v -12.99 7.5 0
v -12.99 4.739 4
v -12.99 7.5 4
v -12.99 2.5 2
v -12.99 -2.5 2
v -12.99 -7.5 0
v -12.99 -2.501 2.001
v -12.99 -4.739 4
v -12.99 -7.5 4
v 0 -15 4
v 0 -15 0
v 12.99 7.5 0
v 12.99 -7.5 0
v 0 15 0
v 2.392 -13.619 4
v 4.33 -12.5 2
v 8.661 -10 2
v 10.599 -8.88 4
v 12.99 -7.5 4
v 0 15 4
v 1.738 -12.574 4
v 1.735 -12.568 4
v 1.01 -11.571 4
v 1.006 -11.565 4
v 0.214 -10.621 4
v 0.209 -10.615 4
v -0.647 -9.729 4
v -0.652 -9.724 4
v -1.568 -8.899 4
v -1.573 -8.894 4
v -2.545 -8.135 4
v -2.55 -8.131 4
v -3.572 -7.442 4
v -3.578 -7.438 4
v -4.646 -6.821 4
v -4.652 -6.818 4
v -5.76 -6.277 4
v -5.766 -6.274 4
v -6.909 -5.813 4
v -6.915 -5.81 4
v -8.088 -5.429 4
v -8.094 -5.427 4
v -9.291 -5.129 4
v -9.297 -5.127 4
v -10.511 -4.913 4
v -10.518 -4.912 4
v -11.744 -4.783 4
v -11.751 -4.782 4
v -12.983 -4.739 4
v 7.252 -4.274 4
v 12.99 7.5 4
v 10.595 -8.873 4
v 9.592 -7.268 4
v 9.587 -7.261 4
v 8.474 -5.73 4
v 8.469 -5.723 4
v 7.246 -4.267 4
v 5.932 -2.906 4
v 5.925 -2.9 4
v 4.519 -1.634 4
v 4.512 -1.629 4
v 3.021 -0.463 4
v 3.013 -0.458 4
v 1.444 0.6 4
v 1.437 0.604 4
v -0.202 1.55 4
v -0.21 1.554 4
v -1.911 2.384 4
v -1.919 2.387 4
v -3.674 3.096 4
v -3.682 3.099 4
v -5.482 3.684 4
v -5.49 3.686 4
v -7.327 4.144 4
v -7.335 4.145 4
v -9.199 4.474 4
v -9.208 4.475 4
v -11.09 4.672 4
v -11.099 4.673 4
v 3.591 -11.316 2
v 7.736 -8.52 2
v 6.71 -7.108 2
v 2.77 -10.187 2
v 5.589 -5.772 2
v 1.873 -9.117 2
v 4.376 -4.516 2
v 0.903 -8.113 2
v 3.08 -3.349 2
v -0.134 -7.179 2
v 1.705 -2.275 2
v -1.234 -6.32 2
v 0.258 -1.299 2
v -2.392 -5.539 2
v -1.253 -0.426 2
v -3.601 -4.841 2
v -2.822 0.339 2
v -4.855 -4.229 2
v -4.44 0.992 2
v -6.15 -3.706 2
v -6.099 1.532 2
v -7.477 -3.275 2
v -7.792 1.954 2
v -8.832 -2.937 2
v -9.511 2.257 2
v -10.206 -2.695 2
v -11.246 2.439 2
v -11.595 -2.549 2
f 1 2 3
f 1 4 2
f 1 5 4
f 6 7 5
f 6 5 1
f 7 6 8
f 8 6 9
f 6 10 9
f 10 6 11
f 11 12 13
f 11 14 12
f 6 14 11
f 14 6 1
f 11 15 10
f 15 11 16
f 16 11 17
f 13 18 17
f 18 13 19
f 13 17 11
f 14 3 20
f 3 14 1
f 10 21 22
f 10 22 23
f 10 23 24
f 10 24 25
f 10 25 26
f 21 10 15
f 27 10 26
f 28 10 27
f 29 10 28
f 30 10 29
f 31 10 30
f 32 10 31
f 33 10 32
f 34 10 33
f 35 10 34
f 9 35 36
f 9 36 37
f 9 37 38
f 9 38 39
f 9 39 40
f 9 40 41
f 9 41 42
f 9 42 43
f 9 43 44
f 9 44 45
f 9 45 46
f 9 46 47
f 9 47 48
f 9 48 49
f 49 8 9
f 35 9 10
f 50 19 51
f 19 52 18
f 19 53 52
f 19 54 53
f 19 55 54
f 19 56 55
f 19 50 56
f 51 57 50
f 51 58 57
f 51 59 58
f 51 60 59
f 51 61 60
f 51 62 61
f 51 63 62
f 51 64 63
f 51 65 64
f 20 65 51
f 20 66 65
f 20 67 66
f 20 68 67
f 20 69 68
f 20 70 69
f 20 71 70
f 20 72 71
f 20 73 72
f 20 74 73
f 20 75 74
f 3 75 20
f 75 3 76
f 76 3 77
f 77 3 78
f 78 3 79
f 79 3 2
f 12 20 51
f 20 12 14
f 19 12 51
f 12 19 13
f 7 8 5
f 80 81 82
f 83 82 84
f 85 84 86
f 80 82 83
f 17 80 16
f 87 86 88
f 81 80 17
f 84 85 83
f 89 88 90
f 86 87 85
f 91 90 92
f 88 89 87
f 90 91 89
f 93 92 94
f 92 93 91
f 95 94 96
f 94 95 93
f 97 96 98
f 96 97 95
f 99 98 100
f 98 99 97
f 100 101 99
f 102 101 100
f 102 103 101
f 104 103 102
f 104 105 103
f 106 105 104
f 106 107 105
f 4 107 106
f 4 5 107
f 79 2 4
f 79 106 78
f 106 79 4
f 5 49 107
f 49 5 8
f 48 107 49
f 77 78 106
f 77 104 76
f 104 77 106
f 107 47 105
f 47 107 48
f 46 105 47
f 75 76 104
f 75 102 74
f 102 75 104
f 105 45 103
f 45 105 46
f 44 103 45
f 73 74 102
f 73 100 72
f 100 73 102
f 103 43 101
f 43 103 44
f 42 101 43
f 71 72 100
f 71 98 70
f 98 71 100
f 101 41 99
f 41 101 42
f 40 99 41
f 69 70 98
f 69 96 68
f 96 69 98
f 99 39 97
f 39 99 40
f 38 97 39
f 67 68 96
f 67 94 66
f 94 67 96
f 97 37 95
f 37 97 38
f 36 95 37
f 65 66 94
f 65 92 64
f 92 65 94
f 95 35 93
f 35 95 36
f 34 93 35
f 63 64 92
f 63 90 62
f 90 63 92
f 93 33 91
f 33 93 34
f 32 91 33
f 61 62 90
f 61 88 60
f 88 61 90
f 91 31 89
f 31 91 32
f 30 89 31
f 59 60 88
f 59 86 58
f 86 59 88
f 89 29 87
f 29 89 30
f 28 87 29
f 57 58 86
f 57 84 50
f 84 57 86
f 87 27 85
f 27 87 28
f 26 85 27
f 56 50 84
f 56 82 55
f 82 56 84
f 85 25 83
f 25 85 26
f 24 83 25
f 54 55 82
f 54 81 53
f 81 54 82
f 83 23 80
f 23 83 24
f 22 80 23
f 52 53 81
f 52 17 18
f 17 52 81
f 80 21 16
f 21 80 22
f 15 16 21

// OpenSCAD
rotate(a = [0, 0, -90])
difference()
{
    color("Peru", 1.0)
    {
        // hexagon base
        linear_extrude(height = 4, center = false, convexity = 10, twist = 0)
        circle(r=15, $fn=6);
    }
    
    color("Blue", 1.0)
    {
        // canal shape
        translate([22.5,-12.99,0])
        rotate_extrude(angle=360, convexity=10, $fn=90)
        translate([-22.5,0,0])
        polygon(points=[[-4.75,4.01],[4.75,4.01],[2.5,2], [-2.5,2]]);
    }
    
}
